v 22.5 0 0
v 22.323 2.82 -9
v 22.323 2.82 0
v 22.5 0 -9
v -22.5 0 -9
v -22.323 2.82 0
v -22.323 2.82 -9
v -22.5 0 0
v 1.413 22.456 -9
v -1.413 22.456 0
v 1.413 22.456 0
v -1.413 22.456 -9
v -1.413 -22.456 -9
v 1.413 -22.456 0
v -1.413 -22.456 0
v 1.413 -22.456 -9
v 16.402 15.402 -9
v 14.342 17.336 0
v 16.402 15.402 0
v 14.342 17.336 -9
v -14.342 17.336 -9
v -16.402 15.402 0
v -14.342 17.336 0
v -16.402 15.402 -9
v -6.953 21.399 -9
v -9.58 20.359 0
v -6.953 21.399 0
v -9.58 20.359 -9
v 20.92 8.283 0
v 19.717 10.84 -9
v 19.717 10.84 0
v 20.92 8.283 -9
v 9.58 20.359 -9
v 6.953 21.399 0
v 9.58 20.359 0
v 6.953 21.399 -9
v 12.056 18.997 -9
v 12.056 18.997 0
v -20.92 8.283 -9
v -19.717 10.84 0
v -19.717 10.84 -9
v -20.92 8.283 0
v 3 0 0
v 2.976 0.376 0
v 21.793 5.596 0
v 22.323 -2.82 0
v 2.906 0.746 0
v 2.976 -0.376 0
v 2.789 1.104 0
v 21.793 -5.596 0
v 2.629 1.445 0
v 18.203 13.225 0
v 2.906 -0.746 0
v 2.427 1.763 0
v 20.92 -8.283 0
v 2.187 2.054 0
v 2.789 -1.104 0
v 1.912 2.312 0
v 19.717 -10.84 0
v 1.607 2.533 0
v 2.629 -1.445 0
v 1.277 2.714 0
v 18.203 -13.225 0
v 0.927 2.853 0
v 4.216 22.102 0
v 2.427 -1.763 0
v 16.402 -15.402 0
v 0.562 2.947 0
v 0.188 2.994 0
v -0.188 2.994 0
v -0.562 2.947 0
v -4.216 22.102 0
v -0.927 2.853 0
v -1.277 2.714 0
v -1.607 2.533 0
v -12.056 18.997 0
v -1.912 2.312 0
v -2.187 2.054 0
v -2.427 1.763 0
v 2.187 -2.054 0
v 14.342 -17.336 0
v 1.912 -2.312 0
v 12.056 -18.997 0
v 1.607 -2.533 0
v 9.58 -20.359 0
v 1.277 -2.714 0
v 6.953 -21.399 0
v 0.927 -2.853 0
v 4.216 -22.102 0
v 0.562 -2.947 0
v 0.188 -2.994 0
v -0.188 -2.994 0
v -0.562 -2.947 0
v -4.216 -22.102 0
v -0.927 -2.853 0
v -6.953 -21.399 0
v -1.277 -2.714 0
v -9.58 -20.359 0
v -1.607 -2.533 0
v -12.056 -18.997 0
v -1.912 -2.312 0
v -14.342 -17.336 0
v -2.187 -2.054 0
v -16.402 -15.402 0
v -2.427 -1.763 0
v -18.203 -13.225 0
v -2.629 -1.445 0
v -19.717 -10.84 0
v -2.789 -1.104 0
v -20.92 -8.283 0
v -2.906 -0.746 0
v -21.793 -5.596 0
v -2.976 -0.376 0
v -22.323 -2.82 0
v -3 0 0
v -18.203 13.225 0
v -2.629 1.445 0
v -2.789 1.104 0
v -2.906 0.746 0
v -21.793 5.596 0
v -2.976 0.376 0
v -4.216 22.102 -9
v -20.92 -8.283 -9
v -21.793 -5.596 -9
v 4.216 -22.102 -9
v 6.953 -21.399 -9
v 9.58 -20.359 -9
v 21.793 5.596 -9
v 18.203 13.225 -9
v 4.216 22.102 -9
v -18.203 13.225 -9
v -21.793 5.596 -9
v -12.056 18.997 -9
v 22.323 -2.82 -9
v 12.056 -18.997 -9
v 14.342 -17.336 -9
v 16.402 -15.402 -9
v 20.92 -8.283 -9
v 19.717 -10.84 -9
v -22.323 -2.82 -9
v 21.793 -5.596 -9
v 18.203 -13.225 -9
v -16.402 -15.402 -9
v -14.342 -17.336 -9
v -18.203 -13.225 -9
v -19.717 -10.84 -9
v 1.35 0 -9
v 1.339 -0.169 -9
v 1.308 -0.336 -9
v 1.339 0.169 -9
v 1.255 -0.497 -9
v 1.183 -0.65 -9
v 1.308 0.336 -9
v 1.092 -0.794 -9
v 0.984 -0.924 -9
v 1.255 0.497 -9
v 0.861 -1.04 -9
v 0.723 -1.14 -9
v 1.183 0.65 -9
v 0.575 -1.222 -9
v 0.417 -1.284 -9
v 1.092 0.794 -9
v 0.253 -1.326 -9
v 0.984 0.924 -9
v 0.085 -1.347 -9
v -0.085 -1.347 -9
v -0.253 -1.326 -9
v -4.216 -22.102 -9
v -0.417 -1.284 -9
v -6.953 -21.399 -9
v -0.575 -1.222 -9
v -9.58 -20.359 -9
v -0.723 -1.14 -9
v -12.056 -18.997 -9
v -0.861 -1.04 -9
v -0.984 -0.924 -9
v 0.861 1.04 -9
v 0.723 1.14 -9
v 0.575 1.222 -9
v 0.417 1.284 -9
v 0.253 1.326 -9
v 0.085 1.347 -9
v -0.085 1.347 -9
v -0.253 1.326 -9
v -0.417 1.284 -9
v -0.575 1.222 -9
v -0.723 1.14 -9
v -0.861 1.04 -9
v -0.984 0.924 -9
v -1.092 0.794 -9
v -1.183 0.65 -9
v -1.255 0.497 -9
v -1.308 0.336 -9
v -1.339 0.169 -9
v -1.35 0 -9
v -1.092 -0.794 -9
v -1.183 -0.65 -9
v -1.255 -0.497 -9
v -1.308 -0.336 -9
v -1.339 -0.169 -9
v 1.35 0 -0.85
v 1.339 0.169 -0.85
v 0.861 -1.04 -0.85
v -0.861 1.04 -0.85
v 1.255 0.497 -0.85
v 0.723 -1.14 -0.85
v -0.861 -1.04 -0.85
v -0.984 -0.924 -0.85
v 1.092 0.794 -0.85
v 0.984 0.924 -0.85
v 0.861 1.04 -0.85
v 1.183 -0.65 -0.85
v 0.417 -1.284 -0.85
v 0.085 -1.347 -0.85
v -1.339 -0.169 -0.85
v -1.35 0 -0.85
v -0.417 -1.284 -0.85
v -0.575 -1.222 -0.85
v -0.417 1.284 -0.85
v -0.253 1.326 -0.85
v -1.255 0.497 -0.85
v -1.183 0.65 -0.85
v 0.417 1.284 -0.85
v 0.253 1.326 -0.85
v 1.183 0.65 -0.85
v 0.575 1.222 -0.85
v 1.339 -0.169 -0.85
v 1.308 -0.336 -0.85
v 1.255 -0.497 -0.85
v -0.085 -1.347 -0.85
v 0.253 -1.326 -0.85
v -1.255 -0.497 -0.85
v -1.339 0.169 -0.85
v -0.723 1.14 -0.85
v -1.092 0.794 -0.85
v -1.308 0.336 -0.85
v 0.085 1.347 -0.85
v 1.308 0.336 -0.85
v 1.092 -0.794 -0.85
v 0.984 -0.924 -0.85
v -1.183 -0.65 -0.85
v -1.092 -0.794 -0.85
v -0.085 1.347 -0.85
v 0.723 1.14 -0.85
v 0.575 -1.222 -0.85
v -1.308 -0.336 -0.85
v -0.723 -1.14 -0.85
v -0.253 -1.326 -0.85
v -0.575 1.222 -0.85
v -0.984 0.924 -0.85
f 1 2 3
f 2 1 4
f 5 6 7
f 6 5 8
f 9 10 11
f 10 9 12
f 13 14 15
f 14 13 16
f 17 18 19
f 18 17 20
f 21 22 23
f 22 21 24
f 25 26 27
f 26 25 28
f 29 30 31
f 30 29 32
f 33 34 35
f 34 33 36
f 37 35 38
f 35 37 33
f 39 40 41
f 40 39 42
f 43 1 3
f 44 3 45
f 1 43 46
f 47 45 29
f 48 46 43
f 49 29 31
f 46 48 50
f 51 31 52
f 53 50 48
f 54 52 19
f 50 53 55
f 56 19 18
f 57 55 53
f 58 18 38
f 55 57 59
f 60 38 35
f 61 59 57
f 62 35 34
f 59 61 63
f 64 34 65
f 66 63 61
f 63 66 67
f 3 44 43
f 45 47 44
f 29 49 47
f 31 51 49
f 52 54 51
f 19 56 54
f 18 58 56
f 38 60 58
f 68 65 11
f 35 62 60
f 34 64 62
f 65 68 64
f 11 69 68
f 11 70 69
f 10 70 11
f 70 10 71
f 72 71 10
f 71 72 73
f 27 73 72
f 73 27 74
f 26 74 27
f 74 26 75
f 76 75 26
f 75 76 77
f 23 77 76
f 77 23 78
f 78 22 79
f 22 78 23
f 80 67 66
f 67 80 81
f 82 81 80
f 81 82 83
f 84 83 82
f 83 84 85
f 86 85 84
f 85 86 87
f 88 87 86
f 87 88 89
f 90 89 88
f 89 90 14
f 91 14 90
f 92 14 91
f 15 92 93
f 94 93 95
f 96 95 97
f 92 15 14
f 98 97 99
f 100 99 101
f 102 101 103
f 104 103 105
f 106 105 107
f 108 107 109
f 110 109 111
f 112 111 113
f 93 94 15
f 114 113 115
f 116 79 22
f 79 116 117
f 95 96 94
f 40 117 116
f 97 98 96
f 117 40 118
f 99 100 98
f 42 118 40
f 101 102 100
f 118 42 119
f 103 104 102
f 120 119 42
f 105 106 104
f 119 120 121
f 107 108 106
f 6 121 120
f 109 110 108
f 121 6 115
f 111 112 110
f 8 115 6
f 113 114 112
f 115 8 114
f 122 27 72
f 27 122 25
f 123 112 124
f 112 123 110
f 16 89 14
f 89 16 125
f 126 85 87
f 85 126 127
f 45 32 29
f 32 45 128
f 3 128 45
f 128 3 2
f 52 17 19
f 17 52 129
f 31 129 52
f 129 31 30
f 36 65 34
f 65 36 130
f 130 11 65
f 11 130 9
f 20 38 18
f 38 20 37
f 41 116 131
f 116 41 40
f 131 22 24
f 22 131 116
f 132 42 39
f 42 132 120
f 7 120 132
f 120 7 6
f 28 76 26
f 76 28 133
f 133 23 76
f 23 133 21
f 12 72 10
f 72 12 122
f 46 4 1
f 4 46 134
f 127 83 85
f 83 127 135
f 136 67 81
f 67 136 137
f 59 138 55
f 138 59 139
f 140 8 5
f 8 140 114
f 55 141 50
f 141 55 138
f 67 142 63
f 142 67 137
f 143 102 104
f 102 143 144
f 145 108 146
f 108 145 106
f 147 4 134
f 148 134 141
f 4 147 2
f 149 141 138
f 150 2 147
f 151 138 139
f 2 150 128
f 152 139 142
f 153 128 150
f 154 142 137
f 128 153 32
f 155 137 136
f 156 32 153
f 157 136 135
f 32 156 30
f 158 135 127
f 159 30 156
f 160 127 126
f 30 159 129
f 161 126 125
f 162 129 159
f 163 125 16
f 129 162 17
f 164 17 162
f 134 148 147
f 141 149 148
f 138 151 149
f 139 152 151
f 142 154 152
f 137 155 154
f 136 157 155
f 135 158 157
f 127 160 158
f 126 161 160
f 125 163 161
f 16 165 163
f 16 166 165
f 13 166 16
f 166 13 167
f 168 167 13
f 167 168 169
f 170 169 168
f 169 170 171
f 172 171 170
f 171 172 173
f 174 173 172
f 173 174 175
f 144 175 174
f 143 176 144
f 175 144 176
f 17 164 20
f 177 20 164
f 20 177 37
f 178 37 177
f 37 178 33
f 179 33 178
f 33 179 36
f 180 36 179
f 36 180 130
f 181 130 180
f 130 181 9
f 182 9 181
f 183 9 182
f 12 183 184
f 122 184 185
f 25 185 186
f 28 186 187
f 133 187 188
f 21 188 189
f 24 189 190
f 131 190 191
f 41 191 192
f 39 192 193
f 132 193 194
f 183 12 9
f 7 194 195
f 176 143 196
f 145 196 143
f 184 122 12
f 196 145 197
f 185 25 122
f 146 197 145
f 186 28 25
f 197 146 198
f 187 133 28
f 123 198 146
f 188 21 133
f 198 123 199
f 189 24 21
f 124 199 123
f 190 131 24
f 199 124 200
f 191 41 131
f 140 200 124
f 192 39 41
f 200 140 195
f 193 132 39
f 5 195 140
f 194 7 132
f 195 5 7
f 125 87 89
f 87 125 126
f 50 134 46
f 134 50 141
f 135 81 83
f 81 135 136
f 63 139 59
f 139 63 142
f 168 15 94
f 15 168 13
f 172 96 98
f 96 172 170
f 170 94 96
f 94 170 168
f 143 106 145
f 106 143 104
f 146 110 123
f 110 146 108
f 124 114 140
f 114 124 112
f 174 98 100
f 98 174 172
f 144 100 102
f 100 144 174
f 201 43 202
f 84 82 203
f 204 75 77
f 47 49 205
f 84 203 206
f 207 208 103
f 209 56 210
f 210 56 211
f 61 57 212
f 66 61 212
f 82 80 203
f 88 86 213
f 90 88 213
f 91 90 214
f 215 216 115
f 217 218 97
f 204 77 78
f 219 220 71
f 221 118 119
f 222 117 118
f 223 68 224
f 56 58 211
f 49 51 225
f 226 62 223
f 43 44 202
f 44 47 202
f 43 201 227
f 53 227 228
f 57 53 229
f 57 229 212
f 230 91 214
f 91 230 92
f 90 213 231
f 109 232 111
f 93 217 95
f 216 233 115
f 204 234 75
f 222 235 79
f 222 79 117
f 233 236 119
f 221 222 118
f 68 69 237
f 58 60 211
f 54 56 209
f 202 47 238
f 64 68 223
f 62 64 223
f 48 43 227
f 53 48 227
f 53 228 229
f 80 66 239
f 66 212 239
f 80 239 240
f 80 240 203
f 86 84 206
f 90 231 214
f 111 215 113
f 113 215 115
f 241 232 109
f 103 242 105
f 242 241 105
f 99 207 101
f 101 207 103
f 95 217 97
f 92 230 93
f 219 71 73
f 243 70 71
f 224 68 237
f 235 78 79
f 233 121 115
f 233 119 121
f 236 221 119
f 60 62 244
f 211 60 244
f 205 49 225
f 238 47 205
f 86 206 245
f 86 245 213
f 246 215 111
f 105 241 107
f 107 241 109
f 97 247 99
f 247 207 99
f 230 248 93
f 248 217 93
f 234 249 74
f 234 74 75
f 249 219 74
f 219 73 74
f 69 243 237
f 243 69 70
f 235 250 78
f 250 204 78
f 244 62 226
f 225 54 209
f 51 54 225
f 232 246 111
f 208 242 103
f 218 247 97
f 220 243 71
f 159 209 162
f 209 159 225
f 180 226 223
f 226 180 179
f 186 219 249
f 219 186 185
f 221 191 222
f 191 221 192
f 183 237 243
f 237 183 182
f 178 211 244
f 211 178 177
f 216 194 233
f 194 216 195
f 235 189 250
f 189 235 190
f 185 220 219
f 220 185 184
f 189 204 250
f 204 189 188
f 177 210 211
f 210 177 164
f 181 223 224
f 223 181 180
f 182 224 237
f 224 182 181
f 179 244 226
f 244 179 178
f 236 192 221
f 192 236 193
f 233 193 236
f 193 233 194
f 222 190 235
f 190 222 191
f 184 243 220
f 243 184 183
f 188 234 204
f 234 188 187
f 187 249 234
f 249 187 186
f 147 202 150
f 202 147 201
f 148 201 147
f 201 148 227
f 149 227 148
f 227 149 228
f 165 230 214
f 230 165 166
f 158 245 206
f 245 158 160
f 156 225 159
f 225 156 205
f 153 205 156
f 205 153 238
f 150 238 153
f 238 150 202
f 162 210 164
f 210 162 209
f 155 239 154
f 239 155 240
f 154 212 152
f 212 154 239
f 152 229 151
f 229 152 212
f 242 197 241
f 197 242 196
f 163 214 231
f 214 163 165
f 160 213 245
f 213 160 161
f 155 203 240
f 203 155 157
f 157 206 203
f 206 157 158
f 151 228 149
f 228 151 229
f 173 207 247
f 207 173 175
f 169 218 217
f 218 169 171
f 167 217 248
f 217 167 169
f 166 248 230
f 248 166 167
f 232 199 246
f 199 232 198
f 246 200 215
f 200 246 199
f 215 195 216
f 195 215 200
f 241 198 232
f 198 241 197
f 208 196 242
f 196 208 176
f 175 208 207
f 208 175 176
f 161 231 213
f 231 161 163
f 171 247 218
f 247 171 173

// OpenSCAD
$fn = 50;


difference() {
	union() {
		translate(v = [0, 0, -9.0000000000]) {
			cylinder(h = 9, r = 22.5000000000);
		}
		translate(v = [0, 0, -9.0000000000]) {
			cylinder(h = 9, r = 2.8750000000);
		}
	}
	union() {
		translate(v = [0, 0, 0]) {
			rotate(a = [0, 0, 0]) {
				difference() {
					union() {
						#translate(v = [0, 0, -9.0000000000]) {
							cylinder(h = 9, r = 1.0000000000);
						}
						#translate(v = [0, 0, -0.8500000000]) {
							cylinder(h = 0.8500000000, r1 = 1.3500000000, r2 = 3.0000000000);
						}
						#translate(v = [0, 0, -9.0000000000]) {
							cylinder(h = 9, r = 1.3500000000);
						}
						#translate(v = [0, 0, -9.0000000000]) {
							cylinder(h = 9, r = 1.0000000000);
						}
					}
					union();
				}
			}
		}
	}
}
